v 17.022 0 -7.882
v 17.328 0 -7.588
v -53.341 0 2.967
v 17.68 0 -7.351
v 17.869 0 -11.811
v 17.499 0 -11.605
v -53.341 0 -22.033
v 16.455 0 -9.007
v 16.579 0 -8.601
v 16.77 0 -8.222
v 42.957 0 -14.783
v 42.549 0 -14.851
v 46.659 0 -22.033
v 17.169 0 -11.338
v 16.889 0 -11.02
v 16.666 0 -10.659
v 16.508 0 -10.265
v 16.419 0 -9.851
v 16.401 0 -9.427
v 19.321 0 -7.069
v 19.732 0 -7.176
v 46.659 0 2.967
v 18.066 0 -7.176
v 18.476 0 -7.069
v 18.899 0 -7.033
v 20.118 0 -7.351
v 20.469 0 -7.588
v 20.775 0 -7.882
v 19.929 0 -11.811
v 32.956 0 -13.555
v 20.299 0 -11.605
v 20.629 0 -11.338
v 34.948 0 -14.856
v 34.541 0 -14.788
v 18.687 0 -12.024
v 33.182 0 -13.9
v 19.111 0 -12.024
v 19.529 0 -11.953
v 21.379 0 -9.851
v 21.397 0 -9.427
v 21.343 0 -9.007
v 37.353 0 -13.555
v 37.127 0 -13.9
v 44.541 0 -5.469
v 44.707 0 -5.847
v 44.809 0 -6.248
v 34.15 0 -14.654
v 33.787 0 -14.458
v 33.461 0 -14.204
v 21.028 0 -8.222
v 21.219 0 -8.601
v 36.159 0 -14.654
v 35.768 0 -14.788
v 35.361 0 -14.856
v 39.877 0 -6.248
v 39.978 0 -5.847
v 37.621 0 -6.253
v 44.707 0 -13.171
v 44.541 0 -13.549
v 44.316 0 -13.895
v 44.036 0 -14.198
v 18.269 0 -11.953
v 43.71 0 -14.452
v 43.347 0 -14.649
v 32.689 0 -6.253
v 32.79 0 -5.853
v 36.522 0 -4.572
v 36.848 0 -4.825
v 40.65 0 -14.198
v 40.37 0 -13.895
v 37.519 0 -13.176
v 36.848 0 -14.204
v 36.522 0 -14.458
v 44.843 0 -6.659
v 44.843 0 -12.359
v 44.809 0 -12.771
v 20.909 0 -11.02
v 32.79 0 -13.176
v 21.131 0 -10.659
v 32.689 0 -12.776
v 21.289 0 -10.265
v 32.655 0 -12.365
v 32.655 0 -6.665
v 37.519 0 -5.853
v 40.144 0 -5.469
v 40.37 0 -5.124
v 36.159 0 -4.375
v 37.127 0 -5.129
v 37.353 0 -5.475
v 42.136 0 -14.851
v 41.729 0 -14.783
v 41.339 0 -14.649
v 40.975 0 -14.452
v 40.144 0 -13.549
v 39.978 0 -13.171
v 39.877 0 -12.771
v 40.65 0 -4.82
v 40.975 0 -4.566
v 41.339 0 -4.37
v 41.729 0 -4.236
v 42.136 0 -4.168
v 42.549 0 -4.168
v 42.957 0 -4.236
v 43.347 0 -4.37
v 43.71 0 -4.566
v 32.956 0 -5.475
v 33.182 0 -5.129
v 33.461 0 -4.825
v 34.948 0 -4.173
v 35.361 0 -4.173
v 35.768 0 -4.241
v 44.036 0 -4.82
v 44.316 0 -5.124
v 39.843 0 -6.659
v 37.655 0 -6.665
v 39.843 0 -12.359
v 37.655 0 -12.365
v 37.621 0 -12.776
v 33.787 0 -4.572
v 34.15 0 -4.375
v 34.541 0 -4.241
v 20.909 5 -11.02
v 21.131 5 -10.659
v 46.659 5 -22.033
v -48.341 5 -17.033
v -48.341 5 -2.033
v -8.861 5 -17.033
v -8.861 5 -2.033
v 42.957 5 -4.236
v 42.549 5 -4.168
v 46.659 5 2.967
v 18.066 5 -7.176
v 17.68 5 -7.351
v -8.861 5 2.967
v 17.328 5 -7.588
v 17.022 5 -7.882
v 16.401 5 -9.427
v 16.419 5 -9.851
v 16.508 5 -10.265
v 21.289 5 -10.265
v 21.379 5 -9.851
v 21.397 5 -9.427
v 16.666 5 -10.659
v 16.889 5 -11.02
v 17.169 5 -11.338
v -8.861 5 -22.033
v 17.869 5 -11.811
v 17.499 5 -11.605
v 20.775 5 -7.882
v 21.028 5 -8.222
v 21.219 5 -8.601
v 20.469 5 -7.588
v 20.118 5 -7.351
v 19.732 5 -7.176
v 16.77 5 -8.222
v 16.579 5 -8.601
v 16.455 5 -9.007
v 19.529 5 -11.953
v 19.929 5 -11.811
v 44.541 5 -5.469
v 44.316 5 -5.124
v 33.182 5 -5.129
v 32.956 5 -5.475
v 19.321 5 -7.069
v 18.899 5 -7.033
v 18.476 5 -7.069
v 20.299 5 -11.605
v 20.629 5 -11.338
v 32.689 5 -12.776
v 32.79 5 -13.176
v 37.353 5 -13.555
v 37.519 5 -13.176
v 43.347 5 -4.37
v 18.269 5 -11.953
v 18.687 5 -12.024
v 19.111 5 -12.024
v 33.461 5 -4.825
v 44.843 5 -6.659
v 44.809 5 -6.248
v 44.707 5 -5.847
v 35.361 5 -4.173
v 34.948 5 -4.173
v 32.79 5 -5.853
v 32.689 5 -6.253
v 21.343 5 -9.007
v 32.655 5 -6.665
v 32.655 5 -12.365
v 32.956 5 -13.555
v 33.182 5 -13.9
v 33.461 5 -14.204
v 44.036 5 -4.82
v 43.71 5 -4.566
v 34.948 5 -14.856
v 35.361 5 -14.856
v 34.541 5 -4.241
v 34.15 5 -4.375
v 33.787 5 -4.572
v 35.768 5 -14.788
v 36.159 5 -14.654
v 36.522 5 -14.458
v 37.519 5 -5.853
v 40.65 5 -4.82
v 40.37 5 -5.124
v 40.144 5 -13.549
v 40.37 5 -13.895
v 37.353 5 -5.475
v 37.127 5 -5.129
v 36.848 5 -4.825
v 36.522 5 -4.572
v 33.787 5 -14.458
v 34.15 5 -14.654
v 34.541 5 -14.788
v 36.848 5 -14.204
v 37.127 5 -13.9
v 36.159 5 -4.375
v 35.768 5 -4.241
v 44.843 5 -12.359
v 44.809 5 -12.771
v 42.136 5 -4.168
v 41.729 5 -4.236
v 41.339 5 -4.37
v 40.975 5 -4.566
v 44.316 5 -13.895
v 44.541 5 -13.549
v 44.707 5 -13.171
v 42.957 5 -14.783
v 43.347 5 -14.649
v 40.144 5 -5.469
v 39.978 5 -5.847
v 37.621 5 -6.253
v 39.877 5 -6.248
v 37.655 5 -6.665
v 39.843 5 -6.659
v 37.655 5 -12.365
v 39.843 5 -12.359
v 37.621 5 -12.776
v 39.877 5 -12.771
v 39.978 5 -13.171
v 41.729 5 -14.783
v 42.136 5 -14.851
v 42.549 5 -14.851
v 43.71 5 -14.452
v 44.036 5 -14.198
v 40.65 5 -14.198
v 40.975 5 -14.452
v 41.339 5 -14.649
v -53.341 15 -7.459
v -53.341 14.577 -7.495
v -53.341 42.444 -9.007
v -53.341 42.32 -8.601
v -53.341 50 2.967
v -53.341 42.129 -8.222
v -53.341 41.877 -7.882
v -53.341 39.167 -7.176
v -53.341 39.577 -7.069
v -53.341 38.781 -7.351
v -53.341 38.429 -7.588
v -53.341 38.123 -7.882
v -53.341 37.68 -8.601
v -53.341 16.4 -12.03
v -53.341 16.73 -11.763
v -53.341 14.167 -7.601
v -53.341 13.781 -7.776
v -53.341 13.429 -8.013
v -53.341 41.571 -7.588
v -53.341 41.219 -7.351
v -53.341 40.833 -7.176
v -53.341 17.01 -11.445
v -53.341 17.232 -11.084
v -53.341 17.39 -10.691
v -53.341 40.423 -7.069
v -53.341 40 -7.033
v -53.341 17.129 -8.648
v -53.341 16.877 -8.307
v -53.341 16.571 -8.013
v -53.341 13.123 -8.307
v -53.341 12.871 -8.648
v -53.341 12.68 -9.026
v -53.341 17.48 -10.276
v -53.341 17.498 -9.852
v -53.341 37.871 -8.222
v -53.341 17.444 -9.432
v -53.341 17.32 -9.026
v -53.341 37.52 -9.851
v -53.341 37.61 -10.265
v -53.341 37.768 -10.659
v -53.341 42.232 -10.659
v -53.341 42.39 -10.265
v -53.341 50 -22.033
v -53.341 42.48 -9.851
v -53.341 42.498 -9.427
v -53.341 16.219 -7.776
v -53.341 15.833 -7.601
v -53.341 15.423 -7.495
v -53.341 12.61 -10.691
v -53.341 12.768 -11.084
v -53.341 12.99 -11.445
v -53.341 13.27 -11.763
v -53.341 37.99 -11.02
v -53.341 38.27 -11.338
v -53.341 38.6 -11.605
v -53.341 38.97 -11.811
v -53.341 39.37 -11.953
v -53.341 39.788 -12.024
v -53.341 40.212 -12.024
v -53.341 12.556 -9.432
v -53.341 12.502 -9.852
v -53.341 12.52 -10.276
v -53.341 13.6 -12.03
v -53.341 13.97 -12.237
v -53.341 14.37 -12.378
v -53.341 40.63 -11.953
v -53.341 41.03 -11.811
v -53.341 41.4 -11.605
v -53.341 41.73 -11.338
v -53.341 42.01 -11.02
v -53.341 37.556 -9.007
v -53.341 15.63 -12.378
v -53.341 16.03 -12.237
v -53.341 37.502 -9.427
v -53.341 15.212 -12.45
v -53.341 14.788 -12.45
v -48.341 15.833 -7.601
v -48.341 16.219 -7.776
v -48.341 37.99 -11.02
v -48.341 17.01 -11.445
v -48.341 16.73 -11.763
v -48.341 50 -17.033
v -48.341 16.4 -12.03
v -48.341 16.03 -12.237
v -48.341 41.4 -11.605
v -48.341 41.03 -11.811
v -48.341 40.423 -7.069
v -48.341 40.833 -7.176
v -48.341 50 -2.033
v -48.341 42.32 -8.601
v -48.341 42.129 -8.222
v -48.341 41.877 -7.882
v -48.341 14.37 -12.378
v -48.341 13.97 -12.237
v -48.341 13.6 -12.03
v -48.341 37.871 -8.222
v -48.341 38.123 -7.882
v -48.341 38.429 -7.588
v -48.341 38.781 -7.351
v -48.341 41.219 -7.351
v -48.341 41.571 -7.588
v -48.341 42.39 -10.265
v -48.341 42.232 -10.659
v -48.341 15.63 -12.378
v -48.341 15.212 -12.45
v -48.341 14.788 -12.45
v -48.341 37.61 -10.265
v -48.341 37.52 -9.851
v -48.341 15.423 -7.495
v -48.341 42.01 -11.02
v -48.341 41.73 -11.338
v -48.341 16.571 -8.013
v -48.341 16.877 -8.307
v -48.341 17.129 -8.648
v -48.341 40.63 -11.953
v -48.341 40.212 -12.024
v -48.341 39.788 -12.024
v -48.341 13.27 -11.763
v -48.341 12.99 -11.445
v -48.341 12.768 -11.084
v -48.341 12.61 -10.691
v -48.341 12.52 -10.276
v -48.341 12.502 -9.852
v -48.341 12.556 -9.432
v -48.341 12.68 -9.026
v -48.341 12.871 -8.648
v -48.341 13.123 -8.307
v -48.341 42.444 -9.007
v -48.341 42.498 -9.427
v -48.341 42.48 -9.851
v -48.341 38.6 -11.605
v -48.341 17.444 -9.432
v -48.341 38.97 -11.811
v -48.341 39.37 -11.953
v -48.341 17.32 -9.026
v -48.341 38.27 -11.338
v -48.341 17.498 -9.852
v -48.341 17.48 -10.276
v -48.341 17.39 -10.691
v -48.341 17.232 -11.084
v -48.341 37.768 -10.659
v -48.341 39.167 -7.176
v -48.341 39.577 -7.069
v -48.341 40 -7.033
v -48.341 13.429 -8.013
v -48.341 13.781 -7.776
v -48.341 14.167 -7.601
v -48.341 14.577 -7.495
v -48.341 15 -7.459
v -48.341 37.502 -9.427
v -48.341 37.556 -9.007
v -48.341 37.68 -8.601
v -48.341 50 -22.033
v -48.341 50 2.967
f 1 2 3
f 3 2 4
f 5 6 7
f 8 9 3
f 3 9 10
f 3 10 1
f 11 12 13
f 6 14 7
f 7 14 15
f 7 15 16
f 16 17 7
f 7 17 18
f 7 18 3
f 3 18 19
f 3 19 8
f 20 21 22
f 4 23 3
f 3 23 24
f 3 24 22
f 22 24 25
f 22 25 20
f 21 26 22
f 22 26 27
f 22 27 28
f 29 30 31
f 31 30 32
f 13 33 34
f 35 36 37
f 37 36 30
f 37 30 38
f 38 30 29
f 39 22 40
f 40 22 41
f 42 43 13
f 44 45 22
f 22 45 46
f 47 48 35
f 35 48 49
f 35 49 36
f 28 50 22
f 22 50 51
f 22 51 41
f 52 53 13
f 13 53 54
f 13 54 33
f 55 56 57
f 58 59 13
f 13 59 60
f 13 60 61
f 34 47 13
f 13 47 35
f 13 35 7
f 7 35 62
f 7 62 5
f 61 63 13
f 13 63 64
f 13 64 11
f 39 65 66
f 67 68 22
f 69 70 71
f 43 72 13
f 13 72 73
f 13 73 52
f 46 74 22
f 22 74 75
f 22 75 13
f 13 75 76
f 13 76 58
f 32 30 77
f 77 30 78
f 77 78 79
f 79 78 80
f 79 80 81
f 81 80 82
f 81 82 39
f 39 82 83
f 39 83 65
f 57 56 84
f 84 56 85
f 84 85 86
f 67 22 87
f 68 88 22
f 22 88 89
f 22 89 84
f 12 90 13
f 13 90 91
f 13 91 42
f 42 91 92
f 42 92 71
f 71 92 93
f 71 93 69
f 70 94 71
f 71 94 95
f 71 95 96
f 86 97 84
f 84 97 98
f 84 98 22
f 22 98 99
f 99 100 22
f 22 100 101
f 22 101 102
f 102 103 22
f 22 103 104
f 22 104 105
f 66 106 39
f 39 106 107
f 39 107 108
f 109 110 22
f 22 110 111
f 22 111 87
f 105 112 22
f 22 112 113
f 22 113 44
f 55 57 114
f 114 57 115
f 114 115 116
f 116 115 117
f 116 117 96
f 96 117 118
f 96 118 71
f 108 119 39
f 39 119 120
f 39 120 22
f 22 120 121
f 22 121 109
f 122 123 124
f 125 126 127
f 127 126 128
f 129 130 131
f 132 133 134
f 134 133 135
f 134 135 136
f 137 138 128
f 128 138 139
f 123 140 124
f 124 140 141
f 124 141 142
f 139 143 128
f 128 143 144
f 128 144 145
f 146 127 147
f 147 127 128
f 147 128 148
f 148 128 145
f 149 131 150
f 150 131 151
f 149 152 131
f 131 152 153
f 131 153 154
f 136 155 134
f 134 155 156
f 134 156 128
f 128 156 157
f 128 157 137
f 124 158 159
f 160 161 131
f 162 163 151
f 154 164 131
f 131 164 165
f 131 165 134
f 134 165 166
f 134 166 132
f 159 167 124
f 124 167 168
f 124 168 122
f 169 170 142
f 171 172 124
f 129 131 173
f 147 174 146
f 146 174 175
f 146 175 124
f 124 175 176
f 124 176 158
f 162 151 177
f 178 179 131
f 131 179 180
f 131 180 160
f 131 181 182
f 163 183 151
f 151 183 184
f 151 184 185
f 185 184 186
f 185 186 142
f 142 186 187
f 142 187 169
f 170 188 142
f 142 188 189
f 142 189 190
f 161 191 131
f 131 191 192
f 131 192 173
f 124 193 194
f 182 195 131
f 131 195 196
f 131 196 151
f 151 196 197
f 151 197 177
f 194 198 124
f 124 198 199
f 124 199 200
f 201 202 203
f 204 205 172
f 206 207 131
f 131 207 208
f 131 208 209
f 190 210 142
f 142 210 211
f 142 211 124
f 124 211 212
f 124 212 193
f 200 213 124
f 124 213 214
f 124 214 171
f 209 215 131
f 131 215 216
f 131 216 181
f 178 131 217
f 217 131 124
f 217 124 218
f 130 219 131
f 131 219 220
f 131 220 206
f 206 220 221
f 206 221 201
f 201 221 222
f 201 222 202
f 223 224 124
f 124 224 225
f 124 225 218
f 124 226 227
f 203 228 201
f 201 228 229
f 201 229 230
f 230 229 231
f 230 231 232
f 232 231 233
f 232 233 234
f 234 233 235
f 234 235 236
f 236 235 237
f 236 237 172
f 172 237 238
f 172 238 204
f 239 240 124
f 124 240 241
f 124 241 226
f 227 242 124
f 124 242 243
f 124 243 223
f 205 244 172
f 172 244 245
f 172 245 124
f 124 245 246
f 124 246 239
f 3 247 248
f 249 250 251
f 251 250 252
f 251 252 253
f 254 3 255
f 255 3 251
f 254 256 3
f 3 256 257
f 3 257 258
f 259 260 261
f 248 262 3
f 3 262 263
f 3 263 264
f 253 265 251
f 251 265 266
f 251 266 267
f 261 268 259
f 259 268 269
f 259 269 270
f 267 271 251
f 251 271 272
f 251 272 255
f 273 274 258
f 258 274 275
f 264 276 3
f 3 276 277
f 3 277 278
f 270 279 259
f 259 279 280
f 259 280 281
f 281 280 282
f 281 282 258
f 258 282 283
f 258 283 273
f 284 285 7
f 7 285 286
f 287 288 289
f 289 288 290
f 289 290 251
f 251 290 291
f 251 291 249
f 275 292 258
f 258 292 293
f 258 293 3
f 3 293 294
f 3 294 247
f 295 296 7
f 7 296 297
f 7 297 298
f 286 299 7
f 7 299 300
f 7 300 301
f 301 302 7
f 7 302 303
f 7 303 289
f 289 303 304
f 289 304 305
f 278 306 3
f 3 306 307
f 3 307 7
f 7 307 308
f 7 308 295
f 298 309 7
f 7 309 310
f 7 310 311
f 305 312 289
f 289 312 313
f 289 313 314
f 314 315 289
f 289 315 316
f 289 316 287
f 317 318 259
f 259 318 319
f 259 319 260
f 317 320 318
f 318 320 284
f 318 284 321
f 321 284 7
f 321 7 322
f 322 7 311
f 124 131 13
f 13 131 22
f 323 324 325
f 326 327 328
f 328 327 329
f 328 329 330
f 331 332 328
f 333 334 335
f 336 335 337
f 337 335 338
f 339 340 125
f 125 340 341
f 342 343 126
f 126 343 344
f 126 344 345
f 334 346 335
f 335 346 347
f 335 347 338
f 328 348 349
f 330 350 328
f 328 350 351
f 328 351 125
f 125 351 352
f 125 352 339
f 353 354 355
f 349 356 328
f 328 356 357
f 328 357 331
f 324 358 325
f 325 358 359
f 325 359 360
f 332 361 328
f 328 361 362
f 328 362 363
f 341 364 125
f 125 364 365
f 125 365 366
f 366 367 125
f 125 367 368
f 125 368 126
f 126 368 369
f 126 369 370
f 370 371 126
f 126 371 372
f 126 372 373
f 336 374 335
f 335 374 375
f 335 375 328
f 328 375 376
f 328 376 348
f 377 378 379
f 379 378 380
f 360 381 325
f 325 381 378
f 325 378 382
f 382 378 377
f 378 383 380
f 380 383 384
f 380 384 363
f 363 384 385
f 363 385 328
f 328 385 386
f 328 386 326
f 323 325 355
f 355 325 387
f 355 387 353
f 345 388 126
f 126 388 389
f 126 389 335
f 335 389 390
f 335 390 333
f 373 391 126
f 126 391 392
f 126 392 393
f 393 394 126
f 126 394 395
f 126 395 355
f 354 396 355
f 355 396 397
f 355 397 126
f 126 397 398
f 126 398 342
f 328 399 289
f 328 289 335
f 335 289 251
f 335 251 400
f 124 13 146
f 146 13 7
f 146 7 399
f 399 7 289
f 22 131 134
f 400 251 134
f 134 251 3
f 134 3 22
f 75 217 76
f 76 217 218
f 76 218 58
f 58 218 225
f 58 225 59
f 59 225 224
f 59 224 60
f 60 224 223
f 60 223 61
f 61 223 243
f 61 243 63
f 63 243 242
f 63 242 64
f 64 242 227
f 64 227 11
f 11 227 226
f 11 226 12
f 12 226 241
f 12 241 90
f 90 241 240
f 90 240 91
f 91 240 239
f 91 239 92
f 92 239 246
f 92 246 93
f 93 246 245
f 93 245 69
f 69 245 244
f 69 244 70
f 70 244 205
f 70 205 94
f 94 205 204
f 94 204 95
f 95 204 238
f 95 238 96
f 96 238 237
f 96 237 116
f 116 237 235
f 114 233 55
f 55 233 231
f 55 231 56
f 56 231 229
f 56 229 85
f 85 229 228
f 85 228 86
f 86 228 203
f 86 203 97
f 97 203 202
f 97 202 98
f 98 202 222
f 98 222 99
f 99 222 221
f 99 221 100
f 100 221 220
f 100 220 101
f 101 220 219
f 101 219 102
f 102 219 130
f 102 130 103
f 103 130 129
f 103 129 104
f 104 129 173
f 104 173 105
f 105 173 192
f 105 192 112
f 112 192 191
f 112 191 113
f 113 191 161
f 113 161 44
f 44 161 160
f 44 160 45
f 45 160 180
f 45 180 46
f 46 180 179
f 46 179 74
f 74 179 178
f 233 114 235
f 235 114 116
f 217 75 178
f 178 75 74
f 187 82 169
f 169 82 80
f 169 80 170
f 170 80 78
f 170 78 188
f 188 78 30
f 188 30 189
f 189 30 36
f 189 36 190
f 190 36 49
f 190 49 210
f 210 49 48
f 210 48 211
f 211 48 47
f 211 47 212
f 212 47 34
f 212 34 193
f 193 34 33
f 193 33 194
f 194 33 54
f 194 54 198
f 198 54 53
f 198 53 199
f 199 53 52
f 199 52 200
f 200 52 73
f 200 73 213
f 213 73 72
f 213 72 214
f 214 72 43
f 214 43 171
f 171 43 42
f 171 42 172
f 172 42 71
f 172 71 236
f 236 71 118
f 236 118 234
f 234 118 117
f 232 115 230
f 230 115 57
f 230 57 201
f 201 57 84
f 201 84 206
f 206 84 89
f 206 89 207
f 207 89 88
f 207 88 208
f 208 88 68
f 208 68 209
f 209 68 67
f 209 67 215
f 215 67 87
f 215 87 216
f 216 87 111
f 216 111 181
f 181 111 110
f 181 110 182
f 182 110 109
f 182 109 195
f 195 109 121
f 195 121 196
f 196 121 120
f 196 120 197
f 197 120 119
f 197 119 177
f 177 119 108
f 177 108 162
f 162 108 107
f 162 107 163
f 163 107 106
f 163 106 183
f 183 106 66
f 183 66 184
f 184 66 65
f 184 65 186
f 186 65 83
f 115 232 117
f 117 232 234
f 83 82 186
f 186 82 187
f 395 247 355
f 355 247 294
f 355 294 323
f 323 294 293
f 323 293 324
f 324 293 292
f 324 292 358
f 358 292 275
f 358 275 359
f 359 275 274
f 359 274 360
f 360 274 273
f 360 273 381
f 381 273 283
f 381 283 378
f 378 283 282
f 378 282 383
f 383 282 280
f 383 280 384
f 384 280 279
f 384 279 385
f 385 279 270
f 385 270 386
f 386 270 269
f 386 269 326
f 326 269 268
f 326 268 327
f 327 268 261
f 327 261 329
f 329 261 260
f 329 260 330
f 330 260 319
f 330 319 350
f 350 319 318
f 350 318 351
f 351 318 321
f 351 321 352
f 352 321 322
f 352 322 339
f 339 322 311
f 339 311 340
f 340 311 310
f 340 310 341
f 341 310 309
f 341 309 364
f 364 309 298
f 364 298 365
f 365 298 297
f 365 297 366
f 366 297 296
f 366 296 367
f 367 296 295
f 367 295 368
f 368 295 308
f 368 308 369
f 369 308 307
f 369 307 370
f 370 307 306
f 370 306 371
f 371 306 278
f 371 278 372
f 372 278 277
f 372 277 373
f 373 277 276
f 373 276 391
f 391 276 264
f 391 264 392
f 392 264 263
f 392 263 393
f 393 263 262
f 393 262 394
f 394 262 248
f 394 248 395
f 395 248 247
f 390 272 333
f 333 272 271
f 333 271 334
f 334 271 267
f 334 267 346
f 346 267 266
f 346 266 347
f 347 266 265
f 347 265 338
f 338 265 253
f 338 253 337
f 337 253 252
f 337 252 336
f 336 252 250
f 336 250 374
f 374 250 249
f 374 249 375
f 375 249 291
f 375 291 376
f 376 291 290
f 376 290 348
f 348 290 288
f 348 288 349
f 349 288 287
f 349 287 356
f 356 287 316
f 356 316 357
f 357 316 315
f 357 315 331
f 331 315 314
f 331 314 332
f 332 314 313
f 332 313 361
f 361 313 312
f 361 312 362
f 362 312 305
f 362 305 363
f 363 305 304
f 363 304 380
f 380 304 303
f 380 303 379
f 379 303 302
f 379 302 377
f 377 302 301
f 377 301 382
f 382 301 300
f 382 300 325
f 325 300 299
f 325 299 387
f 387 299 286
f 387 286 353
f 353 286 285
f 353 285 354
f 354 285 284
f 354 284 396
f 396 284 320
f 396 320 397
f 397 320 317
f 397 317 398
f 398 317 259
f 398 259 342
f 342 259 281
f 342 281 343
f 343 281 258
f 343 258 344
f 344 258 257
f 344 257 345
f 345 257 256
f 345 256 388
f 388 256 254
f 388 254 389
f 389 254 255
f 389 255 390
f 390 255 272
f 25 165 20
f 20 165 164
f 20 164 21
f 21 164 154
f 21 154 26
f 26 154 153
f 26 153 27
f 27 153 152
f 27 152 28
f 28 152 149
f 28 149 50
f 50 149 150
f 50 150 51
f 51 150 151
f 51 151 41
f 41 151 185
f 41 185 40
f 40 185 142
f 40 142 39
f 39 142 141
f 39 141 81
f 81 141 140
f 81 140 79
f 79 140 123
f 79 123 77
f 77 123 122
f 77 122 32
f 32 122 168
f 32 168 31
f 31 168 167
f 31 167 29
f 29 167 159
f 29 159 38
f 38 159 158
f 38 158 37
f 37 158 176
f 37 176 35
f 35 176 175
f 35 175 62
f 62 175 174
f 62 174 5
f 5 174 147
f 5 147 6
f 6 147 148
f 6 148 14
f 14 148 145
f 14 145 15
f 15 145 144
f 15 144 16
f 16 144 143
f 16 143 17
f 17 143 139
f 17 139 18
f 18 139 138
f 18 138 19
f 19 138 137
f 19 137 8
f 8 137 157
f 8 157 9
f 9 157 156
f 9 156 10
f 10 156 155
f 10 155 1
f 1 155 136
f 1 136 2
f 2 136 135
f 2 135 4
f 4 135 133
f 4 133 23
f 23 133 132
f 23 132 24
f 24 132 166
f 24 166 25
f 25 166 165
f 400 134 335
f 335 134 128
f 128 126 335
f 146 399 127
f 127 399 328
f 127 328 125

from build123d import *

# Parameters (mm, degrees)
SKETCH1_W                 = 100
SKETCH1_H                 = 15
BOSS_EXTRUDE1_DEPTH       = 5
SKETCH2_W                 = 5
SKETCH2_H                 = 15
BOSS_EXTRUDE2_DEPTH       = 45
SKETCH3_W                 = 55.52
SKETCH3_H                 = 5
BOSS_EXTRUDE3_DEPTH       = 5
F_5_0MM_DOWEL_SLOT1_DEPTH = 5
F_5_0MM_DOWEL_SLOT2_DEPTH = 5
F_5_0MM_DOWEL_HOLE1_D     = 5
F_5_0MM_DOWEL_HOLE2_D     = 5
BOSS_EXTRUDE4_DEPTH       = 5
BOSS_EXTRUDE5_DEPTH       = 5


# Read off the part's stored shape, not the designer's step: Ø5.0mm Dowel Slot1, Ø5.0mm Dowel Slot2
with BuildPart() as part:
    # Sketch1 → Boss-Extrude1 (new body)
    with BuildSketch(Plane(origin=(0, 0, 0), x_dir=(1, 0, 0), z_dir=(0, 1, 0))):
        with Locations((-3.34119197, 9.533232324)):
            Rectangle(SKETCH1_W, SKETCH1_H)
    extrude(amount=BOSS_EXTRUDE1_DEPTH)

    # Sketch2 → Boss-Extrude2 (add)
    with BuildSketch(Plane(origin=(0, 5, 0), x_dir=(1, 0, 0), z_dir=(0, 1, 0))):
        with Locations((-50.84119197, 9.533232324)):
            Rectangle(SKETCH2_W, SKETCH2_H)
    extrude(amount=BOSS_EXTRUDE2_DEPTH)

    # Sketch3 → Boss-Extrude3 (add)
    with BuildSketch(Plane(origin=(0, 0, 0), x_dir=(-1, 0, 0), z_dir=(0, -1, 0))):
        with Locations((-18.89880803, 19.533232324)):
            Rectangle(SKETCH3_W, SKETCH3_H)
        with Locations((-18.89880803, -0.466767676)):
            Rectangle(SKETCH3_W, SKETCH3_H)
    extrude(amount=-BOSS_EXTRUDE3_DEPTH)

    # Ø5.0mm Dowel Slot1 outline → Ø5.0mm Dowel Slot1 (cut)
    with BuildSketch(Plane(origin=(0, 0, 0), x_dir=(1, 0, 0), z_dir=(0, 1, 0))):
        with BuildLine():
            Line((44.842812818, 6.659177942), (44.842812818, 12.359177942))
            ThreePointArc((44.842812818, 12.359177942), (42.342812818, 14.859177942), (39.842812818, 12.359177942))
            Line((39.842812818, 12.359177942), (39.842812818, 6.659177942))
            ThreePointArc((39.842812818, 6.659177942), (42.342812818, 4.159177942), (44.842812818, 6.659177942))
        make_face()
    extrude(amount=F_5_0MM_DOWEL_SLOT1_DEPTH, mode=Mode.SUBTRACT)

    # Ø5.0mm Dowel Slot2 outline → Ø5.0mm Dowel Slot2 (cut)
    with BuildSketch(Plane(origin=(0, 0, 0), x_dir=(1, 0, 0), z_dir=(0, 1, 0))):
        with BuildLine():
            ThreePointArc((37.654614979, 12.36475158), (35.154614979, 14.86475158), (32.654614979, 12.36475158))
            Line((32.654614979, 12.36475158), (32.654614979, 6.66475158))
            ThreePointArc((32.654614979, 6.66475158), (35.154614979, 4.16475158), (37.654614979, 6.66475158))
            Line((37.654614979, 6.66475158), (37.654614979, 12.36475158))
        make_face()
    extrude(amount=F_5_0MM_DOWEL_SLOT2_DEPTH, mode=Mode.SUBTRACT)

    # Ø5.0mm Dowel Hole1 (through all)
    with Locations(Plane.ZY.offset(53.34119197)):
        with Locations((-9.533232324, 40), (-9.958577789, 15)):
            Hole(F_5_0MM_DOWEL_HOLE1_D / 2)

    # Ø5.0mm Dowel Hole2 (through all)
    with Locations(Plane(origin=(0, 5, 0), x_dir=(1, 0, 0), z_dir=(0, 1, 0))):
        with Locations((18.89880803, 9.533232324)):
            Hole(F_5_0MM_DOWEL_HOLE2_D / 2)

    # Sketch15 → Boss-Extrude4 (add)
    with BuildSketch(Plane.XY.offset(-2.033232324)):
        Polygon((-48.34119197, 50), (-8.86119197, 5), (-8.86119197, 0), (-53.34119197, 0), (-53.34119197, 50), align=None)
    extrude(amount=BOSS_EXTRUDE4_DEPTH)

    # Sketch16 → Boss-Extrude5 (add)
    with BuildSketch(Plane(origin=(0, 0, -17.033232324), x_dir=(-1, 0, 0), z_dir=(0, 0, -1))):
        Polygon((48.34119197, 50), (8.86119197, 5), (8.86119197, 0), (53.34119197, 0), (53.34119197, 50), align=None)
    extrude(amount=BOSS_EXTRUDE5_DEPTH)


solid = part.part
